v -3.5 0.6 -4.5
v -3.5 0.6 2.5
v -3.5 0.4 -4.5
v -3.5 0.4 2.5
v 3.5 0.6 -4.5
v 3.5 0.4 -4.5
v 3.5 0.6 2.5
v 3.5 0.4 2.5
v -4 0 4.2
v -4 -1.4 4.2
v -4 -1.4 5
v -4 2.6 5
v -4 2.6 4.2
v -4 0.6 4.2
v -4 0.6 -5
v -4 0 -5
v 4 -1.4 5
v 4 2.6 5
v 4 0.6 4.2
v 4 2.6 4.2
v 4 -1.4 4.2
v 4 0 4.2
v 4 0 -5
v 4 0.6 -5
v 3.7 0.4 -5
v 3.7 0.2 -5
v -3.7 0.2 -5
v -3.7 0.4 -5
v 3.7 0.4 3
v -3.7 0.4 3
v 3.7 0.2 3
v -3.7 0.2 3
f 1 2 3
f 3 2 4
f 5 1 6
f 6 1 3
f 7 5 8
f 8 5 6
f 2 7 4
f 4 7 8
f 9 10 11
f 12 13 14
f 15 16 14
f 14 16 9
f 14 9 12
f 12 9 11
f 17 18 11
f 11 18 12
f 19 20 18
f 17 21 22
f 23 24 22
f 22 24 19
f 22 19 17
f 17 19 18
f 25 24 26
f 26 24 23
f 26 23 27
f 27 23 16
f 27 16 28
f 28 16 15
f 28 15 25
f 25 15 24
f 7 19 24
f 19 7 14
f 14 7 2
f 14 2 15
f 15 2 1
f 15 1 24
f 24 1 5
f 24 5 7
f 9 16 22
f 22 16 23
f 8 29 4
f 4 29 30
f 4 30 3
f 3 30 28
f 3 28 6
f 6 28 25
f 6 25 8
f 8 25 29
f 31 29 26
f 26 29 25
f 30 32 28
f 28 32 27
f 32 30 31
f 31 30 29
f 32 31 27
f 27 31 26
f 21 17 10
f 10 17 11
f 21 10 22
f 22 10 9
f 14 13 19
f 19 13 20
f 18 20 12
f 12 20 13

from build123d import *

# Parameters (mm, degrees)
SKETCH1_W                = 8
SKETCH1_H                = 10
BOSS_EXTRUDE1_DEPTH      = 0.6
SKETCH4_W                = 7
SKETCH4_H                = 7
CUT_EXTRUDE1_DEPTH       = 0.4
SKETCH5_W                = 7.4
SKETCH5_H                = 0.2
CUT_EXTRUDE2_DEPTH       = 8
BOSS_EXTRUDE2_DEPTH      = 2
BOSS_EXTRUDE2_DEPTH_BACK = 2
SKETCH6_W                = 8
SKETCH6_H                = 0.8


with BuildPart() as part:
    # Sketch1 → Boss-Extrude1 (new body)
    with BuildSketch(Plane(origin=(0, 0, 0), x_dir=(1, 0, 0), z_dir=(0, 1, 0))):
        Rectangle(SKETCH1_W, SKETCH1_H)
    extrude(amount=BOSS_EXTRUDE1_DEPTH)

    # Sketch4 → Cut-Extrude1 (cut)
    with BuildSketch(Plane(origin=(0, 0.6, 0), x_dir=(1, 0, 0), z_dir=(0, 1, 0))):
        with Locations((0, 1)):
            Rectangle(SKETCH4_W, SKETCH4_H)
    extrude(amount=-CUT_EXTRUDE1_DEPTH, mode=Mode.SUBTRACT)

    # Sketch5 → Cut-Extrude2 (cut)
    with BuildSketch(Plane(origin=(0, 0, -5), x_dir=(-1, 0, 0), z_dir=(0, 0, -1))):
        with Locations((0, 0.3)):
            Rectangle(SKETCH5_W, SKETCH5_H)
    extrude(amount=-CUT_EXTRUDE2_DEPTH, mode=Mode.SUBTRACT)

    # Sketch6 → Boss-Extrude2 (add, two sides: drawn at the far end of the back side and taken through both)
    with BuildSketch(Plane(origin=(0, 0.6, 0), x_dir=(1, 0, 0), z_dir=(0, 1, 0)).offset(-BOSS_EXTRUDE2_DEPTH_BACK)):
        with Locations((0, -4.6)):
            Rectangle(SKETCH6_W, SKETCH6_H)
    extrude(amount=BOSS_EXTRUDE2_DEPTH + BOSS_EXTRUDE2_DEPTH_BACK)


solid = part.part
